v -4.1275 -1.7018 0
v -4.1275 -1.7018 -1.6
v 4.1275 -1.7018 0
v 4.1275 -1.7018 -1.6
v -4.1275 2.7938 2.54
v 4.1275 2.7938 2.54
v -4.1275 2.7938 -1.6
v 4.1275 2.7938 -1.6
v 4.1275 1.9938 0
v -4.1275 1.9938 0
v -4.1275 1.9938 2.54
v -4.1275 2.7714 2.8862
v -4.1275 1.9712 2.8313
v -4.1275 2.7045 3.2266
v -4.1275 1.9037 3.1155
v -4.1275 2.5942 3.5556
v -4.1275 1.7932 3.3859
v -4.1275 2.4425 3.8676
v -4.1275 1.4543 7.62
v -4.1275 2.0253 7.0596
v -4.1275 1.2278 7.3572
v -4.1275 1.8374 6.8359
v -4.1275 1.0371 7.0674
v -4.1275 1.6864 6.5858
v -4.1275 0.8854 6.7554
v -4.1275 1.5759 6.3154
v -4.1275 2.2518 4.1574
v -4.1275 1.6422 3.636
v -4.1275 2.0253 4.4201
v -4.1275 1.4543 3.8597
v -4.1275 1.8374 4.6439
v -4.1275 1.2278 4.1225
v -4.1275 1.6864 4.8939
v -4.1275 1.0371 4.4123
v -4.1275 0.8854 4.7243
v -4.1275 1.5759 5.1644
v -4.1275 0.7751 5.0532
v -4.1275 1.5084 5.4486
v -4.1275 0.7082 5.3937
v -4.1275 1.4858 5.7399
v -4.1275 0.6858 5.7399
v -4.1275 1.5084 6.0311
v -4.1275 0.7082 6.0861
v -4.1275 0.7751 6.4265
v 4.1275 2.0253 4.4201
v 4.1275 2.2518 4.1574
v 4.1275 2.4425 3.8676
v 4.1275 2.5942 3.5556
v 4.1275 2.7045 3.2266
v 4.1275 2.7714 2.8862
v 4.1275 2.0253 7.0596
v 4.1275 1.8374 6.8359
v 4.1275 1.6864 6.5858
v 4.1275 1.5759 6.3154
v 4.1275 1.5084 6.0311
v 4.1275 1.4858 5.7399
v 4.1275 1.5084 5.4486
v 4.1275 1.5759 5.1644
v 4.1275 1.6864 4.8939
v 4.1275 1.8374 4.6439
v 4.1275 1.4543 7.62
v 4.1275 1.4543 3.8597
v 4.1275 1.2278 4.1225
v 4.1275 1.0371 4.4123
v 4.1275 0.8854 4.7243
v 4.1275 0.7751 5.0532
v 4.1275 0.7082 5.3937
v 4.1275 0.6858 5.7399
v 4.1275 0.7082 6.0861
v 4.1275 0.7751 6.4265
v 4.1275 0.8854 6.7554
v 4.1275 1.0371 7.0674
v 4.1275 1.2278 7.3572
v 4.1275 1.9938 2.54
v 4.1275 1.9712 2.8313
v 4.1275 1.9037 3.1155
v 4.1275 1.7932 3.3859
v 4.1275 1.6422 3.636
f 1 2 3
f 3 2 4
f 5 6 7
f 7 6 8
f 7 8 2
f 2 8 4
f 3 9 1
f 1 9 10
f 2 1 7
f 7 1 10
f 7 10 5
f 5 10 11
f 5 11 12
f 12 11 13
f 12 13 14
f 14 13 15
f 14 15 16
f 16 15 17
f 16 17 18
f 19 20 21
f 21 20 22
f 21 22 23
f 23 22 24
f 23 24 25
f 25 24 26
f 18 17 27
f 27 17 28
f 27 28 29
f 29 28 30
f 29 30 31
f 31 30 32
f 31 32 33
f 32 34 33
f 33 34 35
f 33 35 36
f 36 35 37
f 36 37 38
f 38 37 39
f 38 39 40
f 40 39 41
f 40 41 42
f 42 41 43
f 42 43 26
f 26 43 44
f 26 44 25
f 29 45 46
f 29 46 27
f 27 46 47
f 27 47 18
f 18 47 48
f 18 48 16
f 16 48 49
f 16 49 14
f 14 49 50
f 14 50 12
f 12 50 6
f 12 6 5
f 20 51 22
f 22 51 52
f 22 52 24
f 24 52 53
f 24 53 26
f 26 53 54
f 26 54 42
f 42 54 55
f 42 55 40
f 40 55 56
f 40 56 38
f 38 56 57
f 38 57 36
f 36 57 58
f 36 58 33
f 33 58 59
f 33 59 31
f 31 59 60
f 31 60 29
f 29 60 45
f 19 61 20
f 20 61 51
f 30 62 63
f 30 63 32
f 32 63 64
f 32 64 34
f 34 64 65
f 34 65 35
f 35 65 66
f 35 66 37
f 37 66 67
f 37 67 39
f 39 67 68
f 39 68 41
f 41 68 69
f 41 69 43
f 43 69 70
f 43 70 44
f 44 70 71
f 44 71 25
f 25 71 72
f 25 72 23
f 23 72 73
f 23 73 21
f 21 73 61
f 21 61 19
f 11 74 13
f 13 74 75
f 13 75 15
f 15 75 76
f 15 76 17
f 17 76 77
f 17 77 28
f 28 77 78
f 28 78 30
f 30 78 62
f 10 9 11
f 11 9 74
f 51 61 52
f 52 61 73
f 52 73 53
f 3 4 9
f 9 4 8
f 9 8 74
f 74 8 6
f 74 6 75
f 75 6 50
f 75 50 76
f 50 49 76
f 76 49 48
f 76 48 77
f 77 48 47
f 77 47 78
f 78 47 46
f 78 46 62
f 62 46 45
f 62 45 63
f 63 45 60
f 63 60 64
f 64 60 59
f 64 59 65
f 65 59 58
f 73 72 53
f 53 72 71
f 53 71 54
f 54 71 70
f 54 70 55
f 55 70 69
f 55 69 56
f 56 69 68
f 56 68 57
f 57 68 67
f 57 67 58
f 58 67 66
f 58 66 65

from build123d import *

# Parameters (mm, degrees)
BOSS_EXTRUDE1_DEPTH            = 1.6
QQ_DEPTH                       = 7.62
BOSS_EXTRUDE3_DEPTH            = 4.1275
BOSS_EXTRUDE3_DEPTH_BACK       = 4.1275
CUT_EXTRUDE1_REACH             = 16.256
CUT_EXTRUDE1_DIRECTION_2_DEPTH = 0.508
SURFACECUT1_START              = -3.7338
SURFACECUT1_DEPTH              = 4.1656
SURFACECUT1_START_2            = 0.4318
SURFACECUT1_2_DEPTH            = 2.362
SURFACECUT1_3_OUTLINE_W        = 8.255
SURFACECUT1_3_OUTLINE_H        = 1.6
SURFACECUT1_3_DEPTH            = 2.032


# Read off the part's stored shape, not the designer's step: SurfaceCut1
with BuildPart() as part:
    # Sketch1 → Boss-Extrude1 (new body)
    with BuildSketch(Plane.XY):
        Polygon((-5.7275, -2.7938), (-5.7275, 2.7938), (5.7275, 2.7938), (5.7275, -2.7938), (5.7275, -3.7338), (-5.7275, -3.7338), align=None)
    extrude(amount=-BOSS_EXTRUDE1_DEPTH)

    # Sketch2 → qq (add)
    with BuildSketch(Plane.XY):
        Polygon((-4.6355, 1.7018), (-4.6355, 2.7938), (-5.7275, 2.7938), (-5.7275, -3.7338), (5.7275, -3.7338), (5.7275, 2.7938), (4.6355, 2.7938), (4.6355, 1.7018), (4.6355, -1.7018), (-4.6355, -1.7018), align=None)
    extrude(amount=QQ_DEPTH)

    # Sketch3 → Boss-Extrude3 (add, two sides: drawn at the far end of the back side and taken through both)
    with BuildSketch(Plane(origin=(0, 0, 0), x_dir=(0, 0, -1), z_dir=(1, 0, 0)).offset(-BOSS_EXTRUDE3_DEPTH_BACK)):
        with BuildLine():
            Line((0, 2.7938), (0, 1.9938))
            Line((0, 1.9938), (-2.54, 1.9938))
            ThreePointArc((-2.54, 1.9938), (-3.252870113, 1.853726552), (-3.859739447, 1.454334539))
            ThreePointArc((-3.859739447, 1.454334539), (-5.739869724, 0.6858), (-7.62, 1.454334539))
            Line((-7.62, 1.454334539), (-7.059609171, 2.025265461))
            ThreePointArc((-7.059609171, 2.025265461), (-5.739869724, 1.4858), (-4.420130276, 2.025265461))
            ThreePointArc((-4.420130276, 2.025265461), (-3.555570676, 2.594248239), (-2.54, 2.7938))
            Line((-2.54, 2.7938), (0, 2.7938))
        make_face()
    extrude(amount=BOSS_EXTRUDE3_DEPTH + BOSS_EXTRUDE3_DEPTH_BACK)

    # Sketch4 → Cut-Extrude1 (cut, up to next)
    with BuildSketch(Plane.ZY.offset(5.7275), mode=Mode.PRIVATE) as cut_extrude1_sk1:
        with BuildLine():
            Line((7.62, 0.6858), (7.62, 2.7938))
            Line((7.62, 2.7938), (0, 2.7938))
            Line((0, 2.7938), (0, 1.9938))
            Line((0, 1.9938), (0, 1.7398))
            Line((0, 1.7398), (2.54, 1.7398))
            ThreePointArc((2.54, 1.7398), (3.156762684, 1.618610916), (3.681815359, 1.273063971))
            ThreePointArc((3.681815359, 1.273063971), (4.628191619, 0.650236125), (5.739869724, 0.4318))
            Line((5.739869724, 0.4318), (7.62, 0.4318))
            Line((7.62, 0.4318), (7.62, 0.6858))
        make_face()
    cut_extrude1_tool1 = extrude(cut_extrude1_sk1.sketch, amount=-CUT_EXTRUDE1_REACH, mode=Mode.PRIVATE) & part.part
    cut_extrude1 = cut_extrude1_tool1.solids().sort_by_distance((-5.7275, 1.850249, 4.529461))[0]
    add(cut_extrude1, mode=Mode.SUBTRACT)

    # Sketch4 → Cut-Extrude1 direction 2 (cut)
    with BuildSketch(Plane.ZY.offset(5.7275)):
        with BuildLine():
            Line((7.62, 0.6858), (7.62, 2.7938))
            Line((7.62, 2.7938), (0, 2.7938))
            Line((0, 2.7938), (0, 1.9938))
            Line((0, 1.9938), (0, 1.7398))
            Line((0, 1.7398), (2.54, 1.7398))
            ThreePointArc((2.54, 1.7398), (3.156762684, 1.618610916), (3.681815359, 1.273063971))
            ThreePointArc((3.681815359, 1.273063971), (4.628191619, 0.650236125), (5.739869724, 0.4318))
            Line((5.739869724, 0.4318), (7.62, 0.4318))
            Line((7.62, 0.4318), (7.62, 0.6858))
        make_face()
    cut_extrude1_direction_2 = extrude(amount=CUT_EXTRUDE1_DIRECTION_2_DEPTH, mode=Mode.SUBTRACT)

    # Mirror1: Cut-Extrude1, Cut-Extrude1 direction 2 across plane
    add(cut_extrude1.mirror(Plane(origin=(0, 0, 0), x_dir=(0, 0, 1), z_dir=(1, 0, 0))), mode=Mode.SUBTRACT)
    add(cut_extrude1_direction_2.mirror(Plane(origin=(0, 0, 0), x_dir=(0, 0, 1), z_dir=(1, 0, 0))), mode=Mode.SUBTRACT)

    # SurfaceCut1 outline → SurfaceCut1 (cut)
    with BuildSketch(Plane(origin=(0, 0, 0), x_dir=(1, 0, 0), z_dir=(0, 1, 0)).offset(SURFACECUT1_START)):
        Polygon((-4.1275, 0), (-4.1275, 1.6), (-5.7275, 1.6), (-5.7275, -7.62), (5.7275, -7.62), (5.7275, 1.6), (4.1275, 1.6), (4.1275, 0), align=None)
    extrude(amount=SURFACECUT1_DEPTH, mode=Mode.SUBTRACT)

    # SurfaceCut1 2 outline → SurfaceCut1 2 (cut)
    with BuildSketch(Plane(origin=(0, 0, 0), x_dir=(1, 0, 0), z_dir=(0, 1, 0)).offset(SURFACECUT1_START_2)):
        Polygon((-4.1275, 0), (-4.1275, 1.6), (-5.7275, 1.6), (-5.7275, -7.62), (-4.6355, -7.62), (-4.6355, 0), align=None)
        Polygon((5.7275, 1.6), (4.1275, 1.6), (4.1275, 0), (4.6355, 0), (4.6355, -7.62), (5.7275, -7.62), align=None)
    extrude(amount=SURFACECUT1_2_DEPTH, mode=Mode.SUBTRACT)

    # SurfaceCut1 3 outline → SurfaceCut1 3 (cut)
    with BuildSketch(Plane(origin=(0, 0, 0), x_dir=(1, 0, 0), z_dir=(0, 1, 0)).offset(SURFACECUT1_START)):
        with Locations((0, 0.8)):
            Rectangle(SURFACECUT1_3_OUTLINE_W, SURFACECUT1_3_OUTLINE_H)
    extrude(amount=SURFACECUT1_3_DEPTH, mode=Mode.SUBTRACT)


solid = part.part
